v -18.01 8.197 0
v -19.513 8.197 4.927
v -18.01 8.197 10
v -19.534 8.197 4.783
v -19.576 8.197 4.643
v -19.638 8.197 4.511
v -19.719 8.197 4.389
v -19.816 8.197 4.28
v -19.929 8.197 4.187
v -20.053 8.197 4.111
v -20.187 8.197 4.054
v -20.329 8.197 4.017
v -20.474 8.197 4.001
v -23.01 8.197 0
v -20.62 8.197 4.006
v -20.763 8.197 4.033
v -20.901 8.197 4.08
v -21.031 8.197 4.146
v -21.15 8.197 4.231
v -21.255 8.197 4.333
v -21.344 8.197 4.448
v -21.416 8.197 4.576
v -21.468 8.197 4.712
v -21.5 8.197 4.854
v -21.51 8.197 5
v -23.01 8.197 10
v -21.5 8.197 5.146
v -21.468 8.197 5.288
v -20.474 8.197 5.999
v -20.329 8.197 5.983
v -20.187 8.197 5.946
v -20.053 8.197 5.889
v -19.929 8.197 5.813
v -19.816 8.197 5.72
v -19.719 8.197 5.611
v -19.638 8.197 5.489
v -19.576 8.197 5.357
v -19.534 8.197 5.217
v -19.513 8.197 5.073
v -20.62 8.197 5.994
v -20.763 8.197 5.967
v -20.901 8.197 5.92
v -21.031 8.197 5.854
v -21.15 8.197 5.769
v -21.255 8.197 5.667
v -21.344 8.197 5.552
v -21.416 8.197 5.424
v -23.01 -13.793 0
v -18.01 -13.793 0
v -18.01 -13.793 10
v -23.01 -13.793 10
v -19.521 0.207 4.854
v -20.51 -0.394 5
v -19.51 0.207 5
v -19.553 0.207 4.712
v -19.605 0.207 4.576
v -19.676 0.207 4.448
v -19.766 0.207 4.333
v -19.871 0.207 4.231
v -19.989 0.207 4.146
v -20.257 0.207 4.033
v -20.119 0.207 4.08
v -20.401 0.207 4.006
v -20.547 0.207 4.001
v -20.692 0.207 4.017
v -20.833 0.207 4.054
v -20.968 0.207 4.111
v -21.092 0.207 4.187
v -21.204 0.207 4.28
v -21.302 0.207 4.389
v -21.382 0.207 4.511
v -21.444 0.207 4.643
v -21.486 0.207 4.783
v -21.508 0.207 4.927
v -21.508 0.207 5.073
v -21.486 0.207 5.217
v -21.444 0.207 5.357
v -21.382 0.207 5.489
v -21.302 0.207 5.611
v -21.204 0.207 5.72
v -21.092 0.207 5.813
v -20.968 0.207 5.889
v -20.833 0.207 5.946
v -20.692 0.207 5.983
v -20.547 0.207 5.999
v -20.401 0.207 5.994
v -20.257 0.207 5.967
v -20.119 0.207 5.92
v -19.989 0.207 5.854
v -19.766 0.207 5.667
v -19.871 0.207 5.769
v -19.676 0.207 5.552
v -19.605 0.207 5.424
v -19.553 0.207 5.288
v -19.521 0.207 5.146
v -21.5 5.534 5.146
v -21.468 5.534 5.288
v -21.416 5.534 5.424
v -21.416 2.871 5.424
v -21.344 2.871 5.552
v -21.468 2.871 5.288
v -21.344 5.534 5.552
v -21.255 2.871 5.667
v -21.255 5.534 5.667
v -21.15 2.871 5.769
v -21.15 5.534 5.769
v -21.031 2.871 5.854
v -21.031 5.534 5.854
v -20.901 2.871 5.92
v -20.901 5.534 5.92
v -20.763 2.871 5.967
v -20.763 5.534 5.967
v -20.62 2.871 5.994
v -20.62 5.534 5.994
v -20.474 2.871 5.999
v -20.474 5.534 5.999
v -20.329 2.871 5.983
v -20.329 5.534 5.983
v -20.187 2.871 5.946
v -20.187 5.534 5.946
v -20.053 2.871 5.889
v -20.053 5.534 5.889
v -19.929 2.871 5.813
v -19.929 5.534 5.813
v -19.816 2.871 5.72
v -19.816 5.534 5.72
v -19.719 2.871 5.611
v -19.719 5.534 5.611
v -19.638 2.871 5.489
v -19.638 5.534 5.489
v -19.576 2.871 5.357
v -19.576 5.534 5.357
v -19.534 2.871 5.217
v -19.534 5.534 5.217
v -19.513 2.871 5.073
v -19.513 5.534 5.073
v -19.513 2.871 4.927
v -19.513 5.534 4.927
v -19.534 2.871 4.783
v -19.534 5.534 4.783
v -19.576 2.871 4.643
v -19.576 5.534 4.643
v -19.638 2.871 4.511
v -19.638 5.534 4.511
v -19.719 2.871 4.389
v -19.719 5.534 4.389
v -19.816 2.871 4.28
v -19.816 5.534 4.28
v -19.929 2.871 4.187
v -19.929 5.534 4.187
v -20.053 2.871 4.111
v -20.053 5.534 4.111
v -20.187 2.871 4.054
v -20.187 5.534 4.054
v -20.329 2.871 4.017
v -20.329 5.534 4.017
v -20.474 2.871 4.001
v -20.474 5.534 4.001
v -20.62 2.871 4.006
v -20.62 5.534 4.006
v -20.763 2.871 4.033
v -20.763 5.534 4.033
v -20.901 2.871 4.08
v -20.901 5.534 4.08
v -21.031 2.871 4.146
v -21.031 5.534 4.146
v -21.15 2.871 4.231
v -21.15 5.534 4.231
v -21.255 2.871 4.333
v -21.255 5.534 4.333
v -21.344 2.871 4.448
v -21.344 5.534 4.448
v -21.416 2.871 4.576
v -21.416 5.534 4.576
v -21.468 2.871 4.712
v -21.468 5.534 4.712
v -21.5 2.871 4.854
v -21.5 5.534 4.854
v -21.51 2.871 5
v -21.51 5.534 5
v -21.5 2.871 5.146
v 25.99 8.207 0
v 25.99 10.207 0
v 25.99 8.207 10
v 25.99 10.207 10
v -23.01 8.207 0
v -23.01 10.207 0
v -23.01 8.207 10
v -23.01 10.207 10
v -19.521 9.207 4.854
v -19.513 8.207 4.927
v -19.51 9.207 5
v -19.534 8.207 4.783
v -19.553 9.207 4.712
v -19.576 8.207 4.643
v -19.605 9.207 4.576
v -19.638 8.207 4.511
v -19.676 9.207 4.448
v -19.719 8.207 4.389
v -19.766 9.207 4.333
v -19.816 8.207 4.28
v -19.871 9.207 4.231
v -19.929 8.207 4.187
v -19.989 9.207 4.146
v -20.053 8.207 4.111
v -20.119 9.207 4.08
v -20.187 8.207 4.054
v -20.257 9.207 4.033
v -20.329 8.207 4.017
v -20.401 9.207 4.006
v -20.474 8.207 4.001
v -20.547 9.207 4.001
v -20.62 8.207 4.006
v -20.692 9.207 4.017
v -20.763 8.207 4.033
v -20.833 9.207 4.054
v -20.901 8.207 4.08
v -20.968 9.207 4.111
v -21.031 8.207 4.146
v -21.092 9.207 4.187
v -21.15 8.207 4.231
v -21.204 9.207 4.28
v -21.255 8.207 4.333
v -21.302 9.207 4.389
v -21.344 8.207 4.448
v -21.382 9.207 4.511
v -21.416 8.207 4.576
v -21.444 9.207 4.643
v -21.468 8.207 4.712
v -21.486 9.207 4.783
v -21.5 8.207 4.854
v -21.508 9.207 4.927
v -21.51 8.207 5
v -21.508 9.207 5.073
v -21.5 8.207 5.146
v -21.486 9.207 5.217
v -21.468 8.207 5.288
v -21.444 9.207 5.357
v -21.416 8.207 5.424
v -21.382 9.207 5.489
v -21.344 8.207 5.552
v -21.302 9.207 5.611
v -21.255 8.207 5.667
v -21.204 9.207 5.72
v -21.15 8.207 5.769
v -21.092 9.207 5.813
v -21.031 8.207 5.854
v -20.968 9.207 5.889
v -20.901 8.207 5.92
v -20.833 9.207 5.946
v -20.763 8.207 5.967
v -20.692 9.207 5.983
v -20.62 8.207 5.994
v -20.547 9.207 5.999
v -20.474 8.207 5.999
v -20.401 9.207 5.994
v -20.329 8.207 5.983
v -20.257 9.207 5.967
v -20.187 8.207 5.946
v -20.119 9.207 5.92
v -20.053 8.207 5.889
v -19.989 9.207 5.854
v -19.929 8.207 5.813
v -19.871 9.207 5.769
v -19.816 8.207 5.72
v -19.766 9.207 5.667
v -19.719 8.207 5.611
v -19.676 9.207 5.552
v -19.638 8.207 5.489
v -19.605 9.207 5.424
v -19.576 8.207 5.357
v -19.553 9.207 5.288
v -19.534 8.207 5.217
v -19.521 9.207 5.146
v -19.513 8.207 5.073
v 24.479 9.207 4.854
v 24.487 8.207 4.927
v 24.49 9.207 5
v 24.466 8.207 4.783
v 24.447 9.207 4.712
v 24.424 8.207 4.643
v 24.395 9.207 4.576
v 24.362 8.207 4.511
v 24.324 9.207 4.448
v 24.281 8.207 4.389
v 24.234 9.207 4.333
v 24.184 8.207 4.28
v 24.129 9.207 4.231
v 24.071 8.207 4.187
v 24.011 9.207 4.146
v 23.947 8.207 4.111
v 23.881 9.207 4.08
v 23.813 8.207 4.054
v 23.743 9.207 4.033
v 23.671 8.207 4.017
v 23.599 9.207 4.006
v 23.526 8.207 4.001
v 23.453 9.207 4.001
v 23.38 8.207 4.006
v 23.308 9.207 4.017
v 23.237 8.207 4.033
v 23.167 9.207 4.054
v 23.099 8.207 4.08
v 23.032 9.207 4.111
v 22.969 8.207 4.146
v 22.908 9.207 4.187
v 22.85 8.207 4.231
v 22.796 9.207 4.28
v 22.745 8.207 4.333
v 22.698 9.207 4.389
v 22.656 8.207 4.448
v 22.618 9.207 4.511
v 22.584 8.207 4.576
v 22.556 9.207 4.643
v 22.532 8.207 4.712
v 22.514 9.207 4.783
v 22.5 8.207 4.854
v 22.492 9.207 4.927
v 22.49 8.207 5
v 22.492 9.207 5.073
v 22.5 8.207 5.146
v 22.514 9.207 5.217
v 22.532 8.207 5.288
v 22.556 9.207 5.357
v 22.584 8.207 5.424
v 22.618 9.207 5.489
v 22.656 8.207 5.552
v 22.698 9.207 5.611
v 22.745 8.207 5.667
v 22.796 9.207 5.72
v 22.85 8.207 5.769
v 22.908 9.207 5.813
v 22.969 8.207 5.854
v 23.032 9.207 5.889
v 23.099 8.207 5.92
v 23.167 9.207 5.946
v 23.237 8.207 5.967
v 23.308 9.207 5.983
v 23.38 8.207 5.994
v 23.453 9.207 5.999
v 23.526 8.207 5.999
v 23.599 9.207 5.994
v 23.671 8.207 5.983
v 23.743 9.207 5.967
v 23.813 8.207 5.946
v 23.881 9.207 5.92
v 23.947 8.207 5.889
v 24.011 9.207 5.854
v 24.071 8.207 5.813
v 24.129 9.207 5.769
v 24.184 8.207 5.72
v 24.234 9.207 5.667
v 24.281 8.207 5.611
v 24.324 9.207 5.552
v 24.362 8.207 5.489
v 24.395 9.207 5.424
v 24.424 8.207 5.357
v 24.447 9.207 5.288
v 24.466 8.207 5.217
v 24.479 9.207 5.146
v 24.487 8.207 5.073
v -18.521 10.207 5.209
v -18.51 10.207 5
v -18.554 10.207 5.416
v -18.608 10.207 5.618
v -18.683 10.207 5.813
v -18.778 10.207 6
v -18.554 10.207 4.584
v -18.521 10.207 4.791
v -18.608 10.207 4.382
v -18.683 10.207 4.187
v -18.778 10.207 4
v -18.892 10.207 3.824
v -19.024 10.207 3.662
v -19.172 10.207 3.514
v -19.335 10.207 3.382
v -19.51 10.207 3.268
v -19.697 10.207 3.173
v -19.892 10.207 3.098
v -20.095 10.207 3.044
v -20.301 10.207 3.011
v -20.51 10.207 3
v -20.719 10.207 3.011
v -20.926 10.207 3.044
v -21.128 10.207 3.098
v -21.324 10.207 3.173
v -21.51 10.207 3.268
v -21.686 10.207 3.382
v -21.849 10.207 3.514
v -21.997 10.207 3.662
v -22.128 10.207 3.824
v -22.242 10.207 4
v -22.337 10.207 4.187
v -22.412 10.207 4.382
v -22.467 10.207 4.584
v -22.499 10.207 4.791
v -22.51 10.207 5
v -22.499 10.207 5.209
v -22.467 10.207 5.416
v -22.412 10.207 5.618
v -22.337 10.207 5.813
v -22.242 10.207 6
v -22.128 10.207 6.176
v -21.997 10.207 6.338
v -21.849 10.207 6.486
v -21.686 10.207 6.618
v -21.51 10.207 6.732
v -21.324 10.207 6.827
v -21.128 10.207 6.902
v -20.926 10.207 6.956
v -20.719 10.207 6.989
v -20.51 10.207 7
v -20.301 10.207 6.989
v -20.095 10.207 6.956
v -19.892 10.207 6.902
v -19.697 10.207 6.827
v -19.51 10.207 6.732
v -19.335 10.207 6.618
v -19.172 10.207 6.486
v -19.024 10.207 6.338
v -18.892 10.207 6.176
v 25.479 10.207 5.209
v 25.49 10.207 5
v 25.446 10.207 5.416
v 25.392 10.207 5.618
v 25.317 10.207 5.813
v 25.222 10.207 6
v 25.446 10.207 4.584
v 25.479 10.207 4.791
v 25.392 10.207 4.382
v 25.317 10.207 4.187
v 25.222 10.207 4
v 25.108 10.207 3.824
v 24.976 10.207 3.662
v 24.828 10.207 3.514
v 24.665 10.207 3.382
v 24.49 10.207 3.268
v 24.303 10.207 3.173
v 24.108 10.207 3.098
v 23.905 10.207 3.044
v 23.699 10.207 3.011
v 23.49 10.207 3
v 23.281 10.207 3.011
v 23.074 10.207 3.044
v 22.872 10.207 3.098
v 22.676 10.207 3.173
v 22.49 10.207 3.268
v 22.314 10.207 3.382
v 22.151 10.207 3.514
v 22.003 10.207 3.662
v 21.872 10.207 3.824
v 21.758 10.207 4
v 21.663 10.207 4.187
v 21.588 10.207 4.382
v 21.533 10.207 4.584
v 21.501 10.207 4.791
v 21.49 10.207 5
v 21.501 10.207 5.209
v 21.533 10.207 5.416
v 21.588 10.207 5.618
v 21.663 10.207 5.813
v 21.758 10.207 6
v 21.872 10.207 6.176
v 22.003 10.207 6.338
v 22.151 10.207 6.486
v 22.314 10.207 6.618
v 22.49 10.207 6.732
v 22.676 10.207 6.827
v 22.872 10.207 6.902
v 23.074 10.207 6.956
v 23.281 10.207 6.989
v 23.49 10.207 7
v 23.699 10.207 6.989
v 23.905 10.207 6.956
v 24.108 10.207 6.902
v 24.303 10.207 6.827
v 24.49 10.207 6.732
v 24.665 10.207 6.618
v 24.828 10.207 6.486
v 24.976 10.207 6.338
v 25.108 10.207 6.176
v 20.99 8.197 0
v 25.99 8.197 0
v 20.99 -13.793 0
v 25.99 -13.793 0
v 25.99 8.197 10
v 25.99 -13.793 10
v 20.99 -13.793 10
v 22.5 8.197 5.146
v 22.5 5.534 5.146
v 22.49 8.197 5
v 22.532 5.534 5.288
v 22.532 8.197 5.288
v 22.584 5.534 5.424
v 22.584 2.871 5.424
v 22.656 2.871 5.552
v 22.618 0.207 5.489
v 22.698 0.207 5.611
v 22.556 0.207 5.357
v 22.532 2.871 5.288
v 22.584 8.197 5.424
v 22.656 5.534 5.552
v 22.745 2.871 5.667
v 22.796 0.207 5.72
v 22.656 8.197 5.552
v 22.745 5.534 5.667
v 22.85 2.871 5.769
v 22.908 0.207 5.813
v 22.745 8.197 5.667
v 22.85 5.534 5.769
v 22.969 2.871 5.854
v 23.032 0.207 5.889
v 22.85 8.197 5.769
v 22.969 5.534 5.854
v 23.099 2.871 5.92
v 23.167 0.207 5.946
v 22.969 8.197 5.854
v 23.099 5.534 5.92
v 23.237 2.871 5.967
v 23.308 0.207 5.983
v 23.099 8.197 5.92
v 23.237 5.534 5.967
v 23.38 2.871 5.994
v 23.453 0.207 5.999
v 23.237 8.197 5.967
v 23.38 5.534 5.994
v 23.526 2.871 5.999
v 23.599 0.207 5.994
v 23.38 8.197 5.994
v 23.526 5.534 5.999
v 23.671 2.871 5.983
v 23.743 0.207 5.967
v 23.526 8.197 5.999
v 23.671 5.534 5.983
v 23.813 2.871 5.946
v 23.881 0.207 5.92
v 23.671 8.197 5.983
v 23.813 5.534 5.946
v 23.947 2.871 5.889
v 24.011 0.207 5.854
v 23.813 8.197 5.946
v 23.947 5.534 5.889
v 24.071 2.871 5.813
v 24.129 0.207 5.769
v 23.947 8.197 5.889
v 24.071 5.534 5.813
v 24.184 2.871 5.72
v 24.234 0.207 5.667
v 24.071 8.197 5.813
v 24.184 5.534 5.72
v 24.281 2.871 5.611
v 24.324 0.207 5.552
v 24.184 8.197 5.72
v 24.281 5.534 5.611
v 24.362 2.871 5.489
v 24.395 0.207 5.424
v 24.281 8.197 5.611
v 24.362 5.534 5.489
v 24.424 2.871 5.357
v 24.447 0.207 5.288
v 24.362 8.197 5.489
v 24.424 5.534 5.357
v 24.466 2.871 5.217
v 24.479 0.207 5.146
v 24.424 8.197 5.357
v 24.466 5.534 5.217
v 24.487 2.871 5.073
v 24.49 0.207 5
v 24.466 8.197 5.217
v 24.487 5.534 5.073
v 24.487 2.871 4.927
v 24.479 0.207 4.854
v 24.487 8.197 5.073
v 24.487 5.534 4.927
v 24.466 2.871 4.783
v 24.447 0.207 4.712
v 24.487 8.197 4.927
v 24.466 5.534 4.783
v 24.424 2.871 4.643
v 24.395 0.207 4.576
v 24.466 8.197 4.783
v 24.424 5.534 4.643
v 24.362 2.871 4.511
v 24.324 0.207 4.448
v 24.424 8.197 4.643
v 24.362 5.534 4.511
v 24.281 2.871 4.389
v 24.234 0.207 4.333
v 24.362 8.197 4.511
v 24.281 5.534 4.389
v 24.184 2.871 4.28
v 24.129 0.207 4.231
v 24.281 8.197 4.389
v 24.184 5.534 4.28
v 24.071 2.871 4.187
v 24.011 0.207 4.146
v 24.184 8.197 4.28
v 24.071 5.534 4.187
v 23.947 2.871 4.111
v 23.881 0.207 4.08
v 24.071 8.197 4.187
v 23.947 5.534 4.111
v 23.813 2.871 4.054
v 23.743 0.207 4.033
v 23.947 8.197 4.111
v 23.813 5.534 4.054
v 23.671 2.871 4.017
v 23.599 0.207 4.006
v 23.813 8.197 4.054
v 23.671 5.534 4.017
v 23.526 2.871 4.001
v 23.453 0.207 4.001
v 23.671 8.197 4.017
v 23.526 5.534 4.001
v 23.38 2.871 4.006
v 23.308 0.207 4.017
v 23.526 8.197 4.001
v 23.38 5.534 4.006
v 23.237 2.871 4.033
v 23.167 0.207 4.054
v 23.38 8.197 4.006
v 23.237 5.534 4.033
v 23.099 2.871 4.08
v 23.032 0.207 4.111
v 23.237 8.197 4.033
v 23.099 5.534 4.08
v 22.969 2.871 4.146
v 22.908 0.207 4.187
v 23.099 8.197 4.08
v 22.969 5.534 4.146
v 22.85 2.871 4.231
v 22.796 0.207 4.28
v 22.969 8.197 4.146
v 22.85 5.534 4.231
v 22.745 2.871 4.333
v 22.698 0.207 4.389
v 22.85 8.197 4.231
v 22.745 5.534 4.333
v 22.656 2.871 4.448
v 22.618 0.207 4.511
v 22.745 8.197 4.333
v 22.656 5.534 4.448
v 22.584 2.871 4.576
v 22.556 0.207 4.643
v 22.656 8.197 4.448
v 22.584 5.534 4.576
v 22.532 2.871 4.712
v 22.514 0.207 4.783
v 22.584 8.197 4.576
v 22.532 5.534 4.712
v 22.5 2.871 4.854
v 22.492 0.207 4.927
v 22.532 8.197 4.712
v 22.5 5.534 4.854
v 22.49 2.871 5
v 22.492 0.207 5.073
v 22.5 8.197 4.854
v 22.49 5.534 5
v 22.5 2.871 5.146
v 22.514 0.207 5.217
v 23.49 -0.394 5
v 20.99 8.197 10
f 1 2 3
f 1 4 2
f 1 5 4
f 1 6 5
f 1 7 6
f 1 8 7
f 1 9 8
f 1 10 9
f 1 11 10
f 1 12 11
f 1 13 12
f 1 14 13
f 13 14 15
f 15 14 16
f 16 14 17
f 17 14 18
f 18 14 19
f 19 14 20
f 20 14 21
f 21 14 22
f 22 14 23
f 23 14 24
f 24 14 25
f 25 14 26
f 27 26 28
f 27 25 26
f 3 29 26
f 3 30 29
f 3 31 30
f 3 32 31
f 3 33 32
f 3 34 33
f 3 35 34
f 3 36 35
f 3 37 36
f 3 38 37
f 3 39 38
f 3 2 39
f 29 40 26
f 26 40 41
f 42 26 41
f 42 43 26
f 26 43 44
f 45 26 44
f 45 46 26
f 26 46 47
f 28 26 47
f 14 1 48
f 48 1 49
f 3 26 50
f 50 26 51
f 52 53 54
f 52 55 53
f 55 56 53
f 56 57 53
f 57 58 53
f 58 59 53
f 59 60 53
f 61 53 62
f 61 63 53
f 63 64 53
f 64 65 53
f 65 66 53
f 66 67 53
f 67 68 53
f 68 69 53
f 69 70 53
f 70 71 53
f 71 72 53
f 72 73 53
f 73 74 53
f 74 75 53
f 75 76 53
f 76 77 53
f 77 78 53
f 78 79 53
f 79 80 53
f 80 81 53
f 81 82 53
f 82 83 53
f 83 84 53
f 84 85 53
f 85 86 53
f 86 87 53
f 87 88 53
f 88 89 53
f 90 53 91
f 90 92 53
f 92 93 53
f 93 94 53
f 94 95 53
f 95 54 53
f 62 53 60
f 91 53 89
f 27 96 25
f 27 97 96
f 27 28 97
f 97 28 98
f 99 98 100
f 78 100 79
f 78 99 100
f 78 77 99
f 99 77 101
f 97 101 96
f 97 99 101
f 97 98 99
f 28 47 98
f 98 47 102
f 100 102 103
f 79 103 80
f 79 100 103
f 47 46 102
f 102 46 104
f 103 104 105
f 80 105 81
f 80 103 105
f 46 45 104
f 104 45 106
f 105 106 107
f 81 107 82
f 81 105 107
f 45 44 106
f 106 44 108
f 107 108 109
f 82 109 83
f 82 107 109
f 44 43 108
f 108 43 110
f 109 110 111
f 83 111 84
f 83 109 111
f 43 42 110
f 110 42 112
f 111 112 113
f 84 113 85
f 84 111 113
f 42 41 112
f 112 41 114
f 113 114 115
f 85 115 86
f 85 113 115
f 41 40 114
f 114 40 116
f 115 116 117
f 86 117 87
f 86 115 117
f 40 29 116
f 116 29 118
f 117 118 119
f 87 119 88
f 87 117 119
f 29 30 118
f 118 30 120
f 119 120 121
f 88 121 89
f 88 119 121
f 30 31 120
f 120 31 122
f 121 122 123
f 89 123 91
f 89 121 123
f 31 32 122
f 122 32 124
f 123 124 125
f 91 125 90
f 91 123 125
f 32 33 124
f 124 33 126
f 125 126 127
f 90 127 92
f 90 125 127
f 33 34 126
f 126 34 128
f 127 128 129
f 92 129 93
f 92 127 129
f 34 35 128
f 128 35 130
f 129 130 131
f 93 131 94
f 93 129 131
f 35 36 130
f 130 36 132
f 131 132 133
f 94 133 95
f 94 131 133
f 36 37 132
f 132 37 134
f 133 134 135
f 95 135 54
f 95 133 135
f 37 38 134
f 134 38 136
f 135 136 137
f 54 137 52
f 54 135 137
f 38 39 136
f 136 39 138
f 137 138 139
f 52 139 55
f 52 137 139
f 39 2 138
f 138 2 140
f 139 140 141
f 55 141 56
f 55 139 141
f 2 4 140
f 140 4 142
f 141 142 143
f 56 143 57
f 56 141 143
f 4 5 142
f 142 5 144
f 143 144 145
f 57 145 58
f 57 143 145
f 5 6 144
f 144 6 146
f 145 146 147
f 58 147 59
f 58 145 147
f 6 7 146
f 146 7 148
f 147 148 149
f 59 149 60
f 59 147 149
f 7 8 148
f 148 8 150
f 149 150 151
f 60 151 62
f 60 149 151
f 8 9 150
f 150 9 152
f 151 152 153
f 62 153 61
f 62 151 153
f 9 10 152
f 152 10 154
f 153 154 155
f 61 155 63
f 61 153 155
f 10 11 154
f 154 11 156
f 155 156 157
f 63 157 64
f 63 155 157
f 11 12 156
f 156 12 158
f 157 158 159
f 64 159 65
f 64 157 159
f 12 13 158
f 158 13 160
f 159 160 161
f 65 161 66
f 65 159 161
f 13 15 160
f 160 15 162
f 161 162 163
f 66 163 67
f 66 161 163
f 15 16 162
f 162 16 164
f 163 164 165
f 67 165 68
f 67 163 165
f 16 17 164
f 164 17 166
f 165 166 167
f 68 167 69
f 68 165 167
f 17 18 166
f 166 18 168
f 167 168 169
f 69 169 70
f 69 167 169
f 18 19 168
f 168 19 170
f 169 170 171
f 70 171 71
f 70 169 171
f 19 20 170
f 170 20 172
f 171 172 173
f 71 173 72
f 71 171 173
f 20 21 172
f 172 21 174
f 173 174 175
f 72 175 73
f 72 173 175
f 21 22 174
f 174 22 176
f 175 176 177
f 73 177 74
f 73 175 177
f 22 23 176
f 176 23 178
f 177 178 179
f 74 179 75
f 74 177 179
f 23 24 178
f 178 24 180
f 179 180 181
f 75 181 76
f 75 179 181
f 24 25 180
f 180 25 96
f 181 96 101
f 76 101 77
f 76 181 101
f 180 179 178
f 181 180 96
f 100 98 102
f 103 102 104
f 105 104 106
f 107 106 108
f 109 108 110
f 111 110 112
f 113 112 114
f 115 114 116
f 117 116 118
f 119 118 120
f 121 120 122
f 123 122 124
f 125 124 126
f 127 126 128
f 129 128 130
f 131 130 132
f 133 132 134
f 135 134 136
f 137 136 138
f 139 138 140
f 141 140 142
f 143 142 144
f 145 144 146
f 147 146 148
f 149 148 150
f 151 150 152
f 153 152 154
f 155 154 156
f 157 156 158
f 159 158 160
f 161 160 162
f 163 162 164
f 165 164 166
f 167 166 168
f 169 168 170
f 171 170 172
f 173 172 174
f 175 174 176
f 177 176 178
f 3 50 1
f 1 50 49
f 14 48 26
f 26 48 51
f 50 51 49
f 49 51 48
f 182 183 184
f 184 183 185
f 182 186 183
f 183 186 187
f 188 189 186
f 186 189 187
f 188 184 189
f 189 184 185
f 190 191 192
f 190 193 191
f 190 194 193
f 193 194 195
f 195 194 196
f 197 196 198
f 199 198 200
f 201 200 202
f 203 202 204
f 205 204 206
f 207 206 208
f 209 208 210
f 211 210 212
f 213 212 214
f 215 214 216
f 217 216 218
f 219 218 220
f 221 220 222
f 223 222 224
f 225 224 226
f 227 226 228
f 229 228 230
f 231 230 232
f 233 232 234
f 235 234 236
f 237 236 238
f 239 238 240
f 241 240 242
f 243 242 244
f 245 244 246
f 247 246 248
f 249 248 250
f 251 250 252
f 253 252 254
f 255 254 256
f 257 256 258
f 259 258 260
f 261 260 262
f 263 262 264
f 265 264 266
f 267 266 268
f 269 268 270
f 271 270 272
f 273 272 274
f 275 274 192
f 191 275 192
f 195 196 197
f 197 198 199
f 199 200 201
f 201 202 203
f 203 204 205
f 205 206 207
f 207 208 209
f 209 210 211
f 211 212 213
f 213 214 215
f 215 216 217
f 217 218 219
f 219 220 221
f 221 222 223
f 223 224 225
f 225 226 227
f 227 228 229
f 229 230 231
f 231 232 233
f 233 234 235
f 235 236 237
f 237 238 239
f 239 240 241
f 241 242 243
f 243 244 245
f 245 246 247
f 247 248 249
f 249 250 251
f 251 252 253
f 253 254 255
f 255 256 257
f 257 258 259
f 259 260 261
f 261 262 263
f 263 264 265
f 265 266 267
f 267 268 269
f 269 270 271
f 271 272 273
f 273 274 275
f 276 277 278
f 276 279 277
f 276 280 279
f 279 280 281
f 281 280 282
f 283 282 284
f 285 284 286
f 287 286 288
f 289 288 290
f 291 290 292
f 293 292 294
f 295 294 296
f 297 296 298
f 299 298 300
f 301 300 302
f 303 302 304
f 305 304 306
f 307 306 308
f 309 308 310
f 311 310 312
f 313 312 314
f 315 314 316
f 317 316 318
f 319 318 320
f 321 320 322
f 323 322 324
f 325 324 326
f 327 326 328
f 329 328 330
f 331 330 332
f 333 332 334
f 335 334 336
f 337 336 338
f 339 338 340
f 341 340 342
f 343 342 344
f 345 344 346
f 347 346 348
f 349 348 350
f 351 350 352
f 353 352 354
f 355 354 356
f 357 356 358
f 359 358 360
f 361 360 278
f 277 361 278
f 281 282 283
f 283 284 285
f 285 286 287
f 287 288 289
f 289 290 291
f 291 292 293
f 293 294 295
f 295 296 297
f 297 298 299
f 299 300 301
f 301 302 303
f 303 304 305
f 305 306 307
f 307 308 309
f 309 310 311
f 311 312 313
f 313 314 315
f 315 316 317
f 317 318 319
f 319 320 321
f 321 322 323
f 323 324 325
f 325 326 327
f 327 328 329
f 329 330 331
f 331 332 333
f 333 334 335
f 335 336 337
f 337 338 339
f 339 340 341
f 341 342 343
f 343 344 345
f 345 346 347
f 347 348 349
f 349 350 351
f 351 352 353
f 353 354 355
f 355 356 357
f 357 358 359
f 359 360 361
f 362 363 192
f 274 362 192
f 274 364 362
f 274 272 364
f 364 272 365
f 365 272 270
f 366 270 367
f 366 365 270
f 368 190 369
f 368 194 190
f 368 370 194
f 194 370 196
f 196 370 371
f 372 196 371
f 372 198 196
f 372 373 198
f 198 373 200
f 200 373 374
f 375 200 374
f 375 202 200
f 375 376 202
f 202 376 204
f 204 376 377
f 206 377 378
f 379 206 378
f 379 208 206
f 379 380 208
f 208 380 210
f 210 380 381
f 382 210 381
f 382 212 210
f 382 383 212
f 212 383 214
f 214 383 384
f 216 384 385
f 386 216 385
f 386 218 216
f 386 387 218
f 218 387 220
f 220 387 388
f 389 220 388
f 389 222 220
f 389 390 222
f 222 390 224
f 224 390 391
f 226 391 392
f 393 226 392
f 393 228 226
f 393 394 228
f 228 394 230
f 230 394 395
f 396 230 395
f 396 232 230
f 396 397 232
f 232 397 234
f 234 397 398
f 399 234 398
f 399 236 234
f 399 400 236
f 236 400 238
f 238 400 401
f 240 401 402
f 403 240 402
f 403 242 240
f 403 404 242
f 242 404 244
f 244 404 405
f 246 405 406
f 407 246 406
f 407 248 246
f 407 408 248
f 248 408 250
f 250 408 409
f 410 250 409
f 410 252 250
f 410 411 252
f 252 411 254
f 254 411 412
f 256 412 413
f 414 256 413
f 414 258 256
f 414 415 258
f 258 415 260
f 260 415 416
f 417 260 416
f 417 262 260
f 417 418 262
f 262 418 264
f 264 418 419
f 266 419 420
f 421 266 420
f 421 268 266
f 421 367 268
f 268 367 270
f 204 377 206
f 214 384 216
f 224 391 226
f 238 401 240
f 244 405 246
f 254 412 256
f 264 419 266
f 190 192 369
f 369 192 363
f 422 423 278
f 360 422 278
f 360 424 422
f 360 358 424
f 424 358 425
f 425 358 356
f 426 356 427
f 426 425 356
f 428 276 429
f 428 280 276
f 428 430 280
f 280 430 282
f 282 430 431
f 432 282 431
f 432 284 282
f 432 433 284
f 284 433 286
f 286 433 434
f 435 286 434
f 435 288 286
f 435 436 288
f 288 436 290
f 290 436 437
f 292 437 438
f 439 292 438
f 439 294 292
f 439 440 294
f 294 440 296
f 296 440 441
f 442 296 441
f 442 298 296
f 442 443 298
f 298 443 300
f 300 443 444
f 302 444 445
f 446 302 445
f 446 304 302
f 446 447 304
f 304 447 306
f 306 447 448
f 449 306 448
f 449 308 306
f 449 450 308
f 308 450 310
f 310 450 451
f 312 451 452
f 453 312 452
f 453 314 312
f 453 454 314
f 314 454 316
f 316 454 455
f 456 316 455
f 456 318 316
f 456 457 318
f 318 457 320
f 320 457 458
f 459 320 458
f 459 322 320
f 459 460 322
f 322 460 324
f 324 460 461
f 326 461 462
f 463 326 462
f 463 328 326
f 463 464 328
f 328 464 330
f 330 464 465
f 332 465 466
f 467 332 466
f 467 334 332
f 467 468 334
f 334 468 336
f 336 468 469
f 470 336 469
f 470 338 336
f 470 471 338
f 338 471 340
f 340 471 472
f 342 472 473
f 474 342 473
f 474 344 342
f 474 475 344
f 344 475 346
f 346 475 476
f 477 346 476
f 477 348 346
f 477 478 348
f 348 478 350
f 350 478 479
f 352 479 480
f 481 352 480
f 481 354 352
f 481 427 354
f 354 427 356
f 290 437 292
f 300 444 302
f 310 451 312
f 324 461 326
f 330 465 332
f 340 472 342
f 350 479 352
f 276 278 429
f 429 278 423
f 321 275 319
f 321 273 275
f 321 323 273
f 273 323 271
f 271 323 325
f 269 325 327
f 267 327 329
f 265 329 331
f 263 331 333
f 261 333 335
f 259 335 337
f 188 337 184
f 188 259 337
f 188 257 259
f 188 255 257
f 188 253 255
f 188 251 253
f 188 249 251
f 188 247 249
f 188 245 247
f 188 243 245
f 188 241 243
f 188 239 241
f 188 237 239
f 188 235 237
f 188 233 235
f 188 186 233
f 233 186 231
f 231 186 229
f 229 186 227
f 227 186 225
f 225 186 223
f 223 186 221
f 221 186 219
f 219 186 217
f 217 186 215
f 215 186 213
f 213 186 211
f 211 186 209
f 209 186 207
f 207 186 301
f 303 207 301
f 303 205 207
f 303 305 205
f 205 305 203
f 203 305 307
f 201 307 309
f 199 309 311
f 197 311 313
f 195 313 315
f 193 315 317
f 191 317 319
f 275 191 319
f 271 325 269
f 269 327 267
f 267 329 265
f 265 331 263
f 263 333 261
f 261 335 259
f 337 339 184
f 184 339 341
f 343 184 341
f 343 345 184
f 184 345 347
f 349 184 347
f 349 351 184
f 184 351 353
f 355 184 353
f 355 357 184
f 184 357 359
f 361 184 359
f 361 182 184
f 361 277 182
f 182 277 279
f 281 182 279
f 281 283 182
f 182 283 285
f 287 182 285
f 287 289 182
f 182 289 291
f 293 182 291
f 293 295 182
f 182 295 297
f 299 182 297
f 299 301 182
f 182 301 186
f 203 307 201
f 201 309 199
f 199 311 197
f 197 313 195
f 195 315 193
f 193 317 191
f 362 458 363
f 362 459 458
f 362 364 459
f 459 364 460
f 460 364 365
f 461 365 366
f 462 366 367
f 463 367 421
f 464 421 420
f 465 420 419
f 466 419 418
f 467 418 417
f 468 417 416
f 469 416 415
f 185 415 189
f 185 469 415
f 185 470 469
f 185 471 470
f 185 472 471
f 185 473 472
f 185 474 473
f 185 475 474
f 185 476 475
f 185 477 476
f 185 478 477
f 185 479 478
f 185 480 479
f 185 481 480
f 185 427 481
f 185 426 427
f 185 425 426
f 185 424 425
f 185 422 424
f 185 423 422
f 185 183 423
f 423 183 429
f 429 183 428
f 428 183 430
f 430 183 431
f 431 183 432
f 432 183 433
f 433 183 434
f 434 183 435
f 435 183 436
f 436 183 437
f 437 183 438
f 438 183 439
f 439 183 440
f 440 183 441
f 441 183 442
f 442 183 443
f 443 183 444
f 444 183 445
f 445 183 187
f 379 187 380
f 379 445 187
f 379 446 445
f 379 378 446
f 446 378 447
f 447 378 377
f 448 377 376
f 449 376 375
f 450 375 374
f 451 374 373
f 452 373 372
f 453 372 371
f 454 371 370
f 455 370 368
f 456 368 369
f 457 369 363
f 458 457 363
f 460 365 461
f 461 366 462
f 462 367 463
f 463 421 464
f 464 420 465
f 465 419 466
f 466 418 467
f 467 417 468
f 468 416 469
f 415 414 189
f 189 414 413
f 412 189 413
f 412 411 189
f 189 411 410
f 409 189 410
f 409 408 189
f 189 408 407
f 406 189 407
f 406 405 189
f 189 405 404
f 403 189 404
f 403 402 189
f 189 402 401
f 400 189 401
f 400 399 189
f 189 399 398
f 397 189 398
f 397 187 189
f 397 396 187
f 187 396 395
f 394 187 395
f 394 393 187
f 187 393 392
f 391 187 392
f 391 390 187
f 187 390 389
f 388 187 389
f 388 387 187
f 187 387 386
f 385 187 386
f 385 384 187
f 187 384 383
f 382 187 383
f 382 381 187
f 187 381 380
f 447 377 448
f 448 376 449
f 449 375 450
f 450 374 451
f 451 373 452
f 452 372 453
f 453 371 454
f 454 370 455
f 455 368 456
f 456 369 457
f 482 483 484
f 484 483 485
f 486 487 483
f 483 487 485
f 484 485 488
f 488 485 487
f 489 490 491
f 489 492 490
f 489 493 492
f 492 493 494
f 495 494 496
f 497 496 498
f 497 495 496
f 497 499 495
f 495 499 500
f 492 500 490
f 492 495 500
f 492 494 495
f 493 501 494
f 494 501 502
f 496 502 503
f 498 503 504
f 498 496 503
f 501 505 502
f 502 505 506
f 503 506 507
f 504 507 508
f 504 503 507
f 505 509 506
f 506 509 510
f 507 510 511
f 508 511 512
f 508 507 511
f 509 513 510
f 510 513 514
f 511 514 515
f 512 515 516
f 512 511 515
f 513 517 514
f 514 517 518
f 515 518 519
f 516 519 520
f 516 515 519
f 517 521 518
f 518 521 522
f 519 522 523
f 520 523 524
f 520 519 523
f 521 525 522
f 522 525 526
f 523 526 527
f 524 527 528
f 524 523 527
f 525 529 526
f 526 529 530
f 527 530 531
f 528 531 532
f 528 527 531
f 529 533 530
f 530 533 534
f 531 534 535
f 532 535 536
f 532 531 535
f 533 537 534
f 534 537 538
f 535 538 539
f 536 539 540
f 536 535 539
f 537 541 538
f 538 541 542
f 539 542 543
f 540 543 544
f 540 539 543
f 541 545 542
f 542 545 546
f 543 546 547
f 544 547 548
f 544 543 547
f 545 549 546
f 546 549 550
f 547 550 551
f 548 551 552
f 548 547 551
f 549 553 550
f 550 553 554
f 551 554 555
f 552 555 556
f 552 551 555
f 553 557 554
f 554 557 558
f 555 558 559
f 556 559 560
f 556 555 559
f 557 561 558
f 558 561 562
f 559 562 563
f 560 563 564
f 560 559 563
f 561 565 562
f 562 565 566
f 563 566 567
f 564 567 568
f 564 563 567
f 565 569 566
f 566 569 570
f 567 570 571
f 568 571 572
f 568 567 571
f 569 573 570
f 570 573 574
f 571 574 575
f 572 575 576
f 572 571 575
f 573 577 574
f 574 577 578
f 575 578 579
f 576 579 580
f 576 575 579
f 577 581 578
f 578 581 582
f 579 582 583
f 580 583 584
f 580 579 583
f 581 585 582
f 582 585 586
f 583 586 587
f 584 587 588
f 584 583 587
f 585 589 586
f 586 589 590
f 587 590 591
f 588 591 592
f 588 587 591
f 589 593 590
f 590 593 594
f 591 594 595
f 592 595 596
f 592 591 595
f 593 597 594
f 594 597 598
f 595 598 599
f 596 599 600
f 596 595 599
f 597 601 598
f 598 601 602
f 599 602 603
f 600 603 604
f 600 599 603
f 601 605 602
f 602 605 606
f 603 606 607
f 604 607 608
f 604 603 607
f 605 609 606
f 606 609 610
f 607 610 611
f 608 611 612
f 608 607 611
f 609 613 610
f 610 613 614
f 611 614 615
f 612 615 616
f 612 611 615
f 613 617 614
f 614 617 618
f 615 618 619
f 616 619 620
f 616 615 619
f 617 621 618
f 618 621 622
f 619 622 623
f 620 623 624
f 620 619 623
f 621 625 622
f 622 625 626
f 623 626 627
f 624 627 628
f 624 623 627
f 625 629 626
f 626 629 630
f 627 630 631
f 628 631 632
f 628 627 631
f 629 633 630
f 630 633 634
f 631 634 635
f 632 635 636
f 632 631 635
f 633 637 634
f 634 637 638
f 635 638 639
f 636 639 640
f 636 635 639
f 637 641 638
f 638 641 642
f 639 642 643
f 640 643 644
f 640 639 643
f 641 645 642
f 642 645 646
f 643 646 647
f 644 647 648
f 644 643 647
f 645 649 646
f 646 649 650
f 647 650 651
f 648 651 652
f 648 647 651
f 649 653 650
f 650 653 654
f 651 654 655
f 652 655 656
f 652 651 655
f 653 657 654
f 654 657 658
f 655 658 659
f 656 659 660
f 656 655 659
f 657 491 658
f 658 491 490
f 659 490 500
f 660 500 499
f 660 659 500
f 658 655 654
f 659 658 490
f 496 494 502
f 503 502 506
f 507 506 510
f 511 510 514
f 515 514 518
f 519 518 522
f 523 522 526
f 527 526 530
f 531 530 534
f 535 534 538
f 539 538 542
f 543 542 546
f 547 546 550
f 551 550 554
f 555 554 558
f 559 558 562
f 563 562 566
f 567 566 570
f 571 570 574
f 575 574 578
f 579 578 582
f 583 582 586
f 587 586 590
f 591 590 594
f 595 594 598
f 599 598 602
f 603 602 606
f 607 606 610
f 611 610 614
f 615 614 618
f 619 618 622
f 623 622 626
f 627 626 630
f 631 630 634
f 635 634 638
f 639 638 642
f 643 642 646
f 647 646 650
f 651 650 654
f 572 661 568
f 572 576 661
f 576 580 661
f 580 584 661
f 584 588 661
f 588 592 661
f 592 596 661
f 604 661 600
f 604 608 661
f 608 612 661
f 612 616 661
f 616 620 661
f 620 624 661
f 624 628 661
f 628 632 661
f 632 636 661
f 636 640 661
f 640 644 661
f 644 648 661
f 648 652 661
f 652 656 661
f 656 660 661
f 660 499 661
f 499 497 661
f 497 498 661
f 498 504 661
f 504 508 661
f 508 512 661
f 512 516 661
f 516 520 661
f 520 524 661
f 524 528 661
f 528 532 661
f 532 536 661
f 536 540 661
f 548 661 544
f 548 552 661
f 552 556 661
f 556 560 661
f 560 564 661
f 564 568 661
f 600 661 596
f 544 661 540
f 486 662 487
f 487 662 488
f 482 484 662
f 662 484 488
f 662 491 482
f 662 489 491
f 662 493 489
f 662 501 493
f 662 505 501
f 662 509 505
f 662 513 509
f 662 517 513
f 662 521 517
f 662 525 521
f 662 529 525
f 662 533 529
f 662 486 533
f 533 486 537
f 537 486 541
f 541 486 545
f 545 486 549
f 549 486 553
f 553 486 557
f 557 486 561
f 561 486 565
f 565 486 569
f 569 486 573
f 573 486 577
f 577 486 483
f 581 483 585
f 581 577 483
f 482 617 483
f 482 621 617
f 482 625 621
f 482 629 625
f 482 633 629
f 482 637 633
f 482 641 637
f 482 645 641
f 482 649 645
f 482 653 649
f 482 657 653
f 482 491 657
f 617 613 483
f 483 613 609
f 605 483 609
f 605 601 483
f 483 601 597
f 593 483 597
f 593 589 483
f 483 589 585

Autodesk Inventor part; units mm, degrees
ref_plane "YZ Plane" through (0, 0, 0) normal (1, 0, 0) x (0, 1, 0)
ref_plane "XZ Plane" through (0, 0, 0) normal (0, 1, 0) x (-1, 0, 0)
ref_plane "XY Plane" through (0, 0, 0) normal (0, 0, 1) x (1, 0, 0)
sketch "Sketch1" plane through (0, 0, 0) normal (0, 0, 1) x (1, 0, 0)
  line L0 (-18.0104, 8.2073) -> (20.9896, 8.2073)
  line L1 (20.9896, 8.2073) -> (20.9896, -13.7927)
  line L2 (20.9896, -13.7927) -> (-18.0104, -13.7927)
  line L3 (-18.0104, -13.7927) -> (-18.0104, 8.2073)
  line L4 (-23.0104, -13.7927) -> (25.9896, -13.7927)
  line L5 (25.9896, -13.7927) -> (25.9896, 10.2073)
  line L6 (25.9896, 10.2073) -> (-23.0104, 10.2073)
  line L7 (-23.0104, 10.2073) -> (-23.0104, -13.7927)
  point P0 (0, 0)
  dimension "d0" = 22
  dimension "d1" = 39
  dimension "d2" = 5
  dimension "d3" = 5
  dimension "d4" = 2
extrude "Extrusion1" add sketch "Sketch1" along normal blind 10 contours L3 L4 L7 L6 L5 L1 L0
sketch "Sketch2" plane through (-23.0104, 10.2073, 0) normal (0, 1, 0) x (1, 0, 0)
  line L0 (0, 0) -> (0, -10) projected
  line L1 (49, 0) -> (49, -10) projected
  point P0 (23.0104, 0)
  point P1 (2.5, -5)
  point P2 (46.5, -5)
  dimension "d7" = 2.5
  dimension "d8" = 2.5
hole "Hole1" at (-20.5104, 10.2073, 5) at (23.4896, 10.2073, 5) direction (0, -1, 0) diameter 2 depth 10 tip angle 118 countersink diameter 4 countersink angle 90
sketch "Sketch3" plane through (0, 0, 10) normal (0, 0, 1) x (1, 0, 0)
  line L0 (-23.0104, 10.2073) -> (-23.0104, -13.7927) projected
  line L1 (-23.0104, 8.2073) -> (25.9896, 8.2073)
  line L2 (25.9896, 8.2073) -> (25.9896, 8.1973)
  line L3 (25.9896, 8.1973) -> (-23.0104, 8.1973)
  line L4 (-23.0104, 8.1973) -> (-23.0104, 8.2073)
  line L5 (25.9896, -13.7927) -> (25.9896, 10.2073) projected
  line L6 (-18.0104, 8.2073) -> (20.9896, 8.2073) projected
  point P0 (0, 0)
  dimension "d16" = 0.01
extrude "Extrusion2" cut sketch "Sketch3" against normal blind 10
properties part number "ArOZ Portable support"
